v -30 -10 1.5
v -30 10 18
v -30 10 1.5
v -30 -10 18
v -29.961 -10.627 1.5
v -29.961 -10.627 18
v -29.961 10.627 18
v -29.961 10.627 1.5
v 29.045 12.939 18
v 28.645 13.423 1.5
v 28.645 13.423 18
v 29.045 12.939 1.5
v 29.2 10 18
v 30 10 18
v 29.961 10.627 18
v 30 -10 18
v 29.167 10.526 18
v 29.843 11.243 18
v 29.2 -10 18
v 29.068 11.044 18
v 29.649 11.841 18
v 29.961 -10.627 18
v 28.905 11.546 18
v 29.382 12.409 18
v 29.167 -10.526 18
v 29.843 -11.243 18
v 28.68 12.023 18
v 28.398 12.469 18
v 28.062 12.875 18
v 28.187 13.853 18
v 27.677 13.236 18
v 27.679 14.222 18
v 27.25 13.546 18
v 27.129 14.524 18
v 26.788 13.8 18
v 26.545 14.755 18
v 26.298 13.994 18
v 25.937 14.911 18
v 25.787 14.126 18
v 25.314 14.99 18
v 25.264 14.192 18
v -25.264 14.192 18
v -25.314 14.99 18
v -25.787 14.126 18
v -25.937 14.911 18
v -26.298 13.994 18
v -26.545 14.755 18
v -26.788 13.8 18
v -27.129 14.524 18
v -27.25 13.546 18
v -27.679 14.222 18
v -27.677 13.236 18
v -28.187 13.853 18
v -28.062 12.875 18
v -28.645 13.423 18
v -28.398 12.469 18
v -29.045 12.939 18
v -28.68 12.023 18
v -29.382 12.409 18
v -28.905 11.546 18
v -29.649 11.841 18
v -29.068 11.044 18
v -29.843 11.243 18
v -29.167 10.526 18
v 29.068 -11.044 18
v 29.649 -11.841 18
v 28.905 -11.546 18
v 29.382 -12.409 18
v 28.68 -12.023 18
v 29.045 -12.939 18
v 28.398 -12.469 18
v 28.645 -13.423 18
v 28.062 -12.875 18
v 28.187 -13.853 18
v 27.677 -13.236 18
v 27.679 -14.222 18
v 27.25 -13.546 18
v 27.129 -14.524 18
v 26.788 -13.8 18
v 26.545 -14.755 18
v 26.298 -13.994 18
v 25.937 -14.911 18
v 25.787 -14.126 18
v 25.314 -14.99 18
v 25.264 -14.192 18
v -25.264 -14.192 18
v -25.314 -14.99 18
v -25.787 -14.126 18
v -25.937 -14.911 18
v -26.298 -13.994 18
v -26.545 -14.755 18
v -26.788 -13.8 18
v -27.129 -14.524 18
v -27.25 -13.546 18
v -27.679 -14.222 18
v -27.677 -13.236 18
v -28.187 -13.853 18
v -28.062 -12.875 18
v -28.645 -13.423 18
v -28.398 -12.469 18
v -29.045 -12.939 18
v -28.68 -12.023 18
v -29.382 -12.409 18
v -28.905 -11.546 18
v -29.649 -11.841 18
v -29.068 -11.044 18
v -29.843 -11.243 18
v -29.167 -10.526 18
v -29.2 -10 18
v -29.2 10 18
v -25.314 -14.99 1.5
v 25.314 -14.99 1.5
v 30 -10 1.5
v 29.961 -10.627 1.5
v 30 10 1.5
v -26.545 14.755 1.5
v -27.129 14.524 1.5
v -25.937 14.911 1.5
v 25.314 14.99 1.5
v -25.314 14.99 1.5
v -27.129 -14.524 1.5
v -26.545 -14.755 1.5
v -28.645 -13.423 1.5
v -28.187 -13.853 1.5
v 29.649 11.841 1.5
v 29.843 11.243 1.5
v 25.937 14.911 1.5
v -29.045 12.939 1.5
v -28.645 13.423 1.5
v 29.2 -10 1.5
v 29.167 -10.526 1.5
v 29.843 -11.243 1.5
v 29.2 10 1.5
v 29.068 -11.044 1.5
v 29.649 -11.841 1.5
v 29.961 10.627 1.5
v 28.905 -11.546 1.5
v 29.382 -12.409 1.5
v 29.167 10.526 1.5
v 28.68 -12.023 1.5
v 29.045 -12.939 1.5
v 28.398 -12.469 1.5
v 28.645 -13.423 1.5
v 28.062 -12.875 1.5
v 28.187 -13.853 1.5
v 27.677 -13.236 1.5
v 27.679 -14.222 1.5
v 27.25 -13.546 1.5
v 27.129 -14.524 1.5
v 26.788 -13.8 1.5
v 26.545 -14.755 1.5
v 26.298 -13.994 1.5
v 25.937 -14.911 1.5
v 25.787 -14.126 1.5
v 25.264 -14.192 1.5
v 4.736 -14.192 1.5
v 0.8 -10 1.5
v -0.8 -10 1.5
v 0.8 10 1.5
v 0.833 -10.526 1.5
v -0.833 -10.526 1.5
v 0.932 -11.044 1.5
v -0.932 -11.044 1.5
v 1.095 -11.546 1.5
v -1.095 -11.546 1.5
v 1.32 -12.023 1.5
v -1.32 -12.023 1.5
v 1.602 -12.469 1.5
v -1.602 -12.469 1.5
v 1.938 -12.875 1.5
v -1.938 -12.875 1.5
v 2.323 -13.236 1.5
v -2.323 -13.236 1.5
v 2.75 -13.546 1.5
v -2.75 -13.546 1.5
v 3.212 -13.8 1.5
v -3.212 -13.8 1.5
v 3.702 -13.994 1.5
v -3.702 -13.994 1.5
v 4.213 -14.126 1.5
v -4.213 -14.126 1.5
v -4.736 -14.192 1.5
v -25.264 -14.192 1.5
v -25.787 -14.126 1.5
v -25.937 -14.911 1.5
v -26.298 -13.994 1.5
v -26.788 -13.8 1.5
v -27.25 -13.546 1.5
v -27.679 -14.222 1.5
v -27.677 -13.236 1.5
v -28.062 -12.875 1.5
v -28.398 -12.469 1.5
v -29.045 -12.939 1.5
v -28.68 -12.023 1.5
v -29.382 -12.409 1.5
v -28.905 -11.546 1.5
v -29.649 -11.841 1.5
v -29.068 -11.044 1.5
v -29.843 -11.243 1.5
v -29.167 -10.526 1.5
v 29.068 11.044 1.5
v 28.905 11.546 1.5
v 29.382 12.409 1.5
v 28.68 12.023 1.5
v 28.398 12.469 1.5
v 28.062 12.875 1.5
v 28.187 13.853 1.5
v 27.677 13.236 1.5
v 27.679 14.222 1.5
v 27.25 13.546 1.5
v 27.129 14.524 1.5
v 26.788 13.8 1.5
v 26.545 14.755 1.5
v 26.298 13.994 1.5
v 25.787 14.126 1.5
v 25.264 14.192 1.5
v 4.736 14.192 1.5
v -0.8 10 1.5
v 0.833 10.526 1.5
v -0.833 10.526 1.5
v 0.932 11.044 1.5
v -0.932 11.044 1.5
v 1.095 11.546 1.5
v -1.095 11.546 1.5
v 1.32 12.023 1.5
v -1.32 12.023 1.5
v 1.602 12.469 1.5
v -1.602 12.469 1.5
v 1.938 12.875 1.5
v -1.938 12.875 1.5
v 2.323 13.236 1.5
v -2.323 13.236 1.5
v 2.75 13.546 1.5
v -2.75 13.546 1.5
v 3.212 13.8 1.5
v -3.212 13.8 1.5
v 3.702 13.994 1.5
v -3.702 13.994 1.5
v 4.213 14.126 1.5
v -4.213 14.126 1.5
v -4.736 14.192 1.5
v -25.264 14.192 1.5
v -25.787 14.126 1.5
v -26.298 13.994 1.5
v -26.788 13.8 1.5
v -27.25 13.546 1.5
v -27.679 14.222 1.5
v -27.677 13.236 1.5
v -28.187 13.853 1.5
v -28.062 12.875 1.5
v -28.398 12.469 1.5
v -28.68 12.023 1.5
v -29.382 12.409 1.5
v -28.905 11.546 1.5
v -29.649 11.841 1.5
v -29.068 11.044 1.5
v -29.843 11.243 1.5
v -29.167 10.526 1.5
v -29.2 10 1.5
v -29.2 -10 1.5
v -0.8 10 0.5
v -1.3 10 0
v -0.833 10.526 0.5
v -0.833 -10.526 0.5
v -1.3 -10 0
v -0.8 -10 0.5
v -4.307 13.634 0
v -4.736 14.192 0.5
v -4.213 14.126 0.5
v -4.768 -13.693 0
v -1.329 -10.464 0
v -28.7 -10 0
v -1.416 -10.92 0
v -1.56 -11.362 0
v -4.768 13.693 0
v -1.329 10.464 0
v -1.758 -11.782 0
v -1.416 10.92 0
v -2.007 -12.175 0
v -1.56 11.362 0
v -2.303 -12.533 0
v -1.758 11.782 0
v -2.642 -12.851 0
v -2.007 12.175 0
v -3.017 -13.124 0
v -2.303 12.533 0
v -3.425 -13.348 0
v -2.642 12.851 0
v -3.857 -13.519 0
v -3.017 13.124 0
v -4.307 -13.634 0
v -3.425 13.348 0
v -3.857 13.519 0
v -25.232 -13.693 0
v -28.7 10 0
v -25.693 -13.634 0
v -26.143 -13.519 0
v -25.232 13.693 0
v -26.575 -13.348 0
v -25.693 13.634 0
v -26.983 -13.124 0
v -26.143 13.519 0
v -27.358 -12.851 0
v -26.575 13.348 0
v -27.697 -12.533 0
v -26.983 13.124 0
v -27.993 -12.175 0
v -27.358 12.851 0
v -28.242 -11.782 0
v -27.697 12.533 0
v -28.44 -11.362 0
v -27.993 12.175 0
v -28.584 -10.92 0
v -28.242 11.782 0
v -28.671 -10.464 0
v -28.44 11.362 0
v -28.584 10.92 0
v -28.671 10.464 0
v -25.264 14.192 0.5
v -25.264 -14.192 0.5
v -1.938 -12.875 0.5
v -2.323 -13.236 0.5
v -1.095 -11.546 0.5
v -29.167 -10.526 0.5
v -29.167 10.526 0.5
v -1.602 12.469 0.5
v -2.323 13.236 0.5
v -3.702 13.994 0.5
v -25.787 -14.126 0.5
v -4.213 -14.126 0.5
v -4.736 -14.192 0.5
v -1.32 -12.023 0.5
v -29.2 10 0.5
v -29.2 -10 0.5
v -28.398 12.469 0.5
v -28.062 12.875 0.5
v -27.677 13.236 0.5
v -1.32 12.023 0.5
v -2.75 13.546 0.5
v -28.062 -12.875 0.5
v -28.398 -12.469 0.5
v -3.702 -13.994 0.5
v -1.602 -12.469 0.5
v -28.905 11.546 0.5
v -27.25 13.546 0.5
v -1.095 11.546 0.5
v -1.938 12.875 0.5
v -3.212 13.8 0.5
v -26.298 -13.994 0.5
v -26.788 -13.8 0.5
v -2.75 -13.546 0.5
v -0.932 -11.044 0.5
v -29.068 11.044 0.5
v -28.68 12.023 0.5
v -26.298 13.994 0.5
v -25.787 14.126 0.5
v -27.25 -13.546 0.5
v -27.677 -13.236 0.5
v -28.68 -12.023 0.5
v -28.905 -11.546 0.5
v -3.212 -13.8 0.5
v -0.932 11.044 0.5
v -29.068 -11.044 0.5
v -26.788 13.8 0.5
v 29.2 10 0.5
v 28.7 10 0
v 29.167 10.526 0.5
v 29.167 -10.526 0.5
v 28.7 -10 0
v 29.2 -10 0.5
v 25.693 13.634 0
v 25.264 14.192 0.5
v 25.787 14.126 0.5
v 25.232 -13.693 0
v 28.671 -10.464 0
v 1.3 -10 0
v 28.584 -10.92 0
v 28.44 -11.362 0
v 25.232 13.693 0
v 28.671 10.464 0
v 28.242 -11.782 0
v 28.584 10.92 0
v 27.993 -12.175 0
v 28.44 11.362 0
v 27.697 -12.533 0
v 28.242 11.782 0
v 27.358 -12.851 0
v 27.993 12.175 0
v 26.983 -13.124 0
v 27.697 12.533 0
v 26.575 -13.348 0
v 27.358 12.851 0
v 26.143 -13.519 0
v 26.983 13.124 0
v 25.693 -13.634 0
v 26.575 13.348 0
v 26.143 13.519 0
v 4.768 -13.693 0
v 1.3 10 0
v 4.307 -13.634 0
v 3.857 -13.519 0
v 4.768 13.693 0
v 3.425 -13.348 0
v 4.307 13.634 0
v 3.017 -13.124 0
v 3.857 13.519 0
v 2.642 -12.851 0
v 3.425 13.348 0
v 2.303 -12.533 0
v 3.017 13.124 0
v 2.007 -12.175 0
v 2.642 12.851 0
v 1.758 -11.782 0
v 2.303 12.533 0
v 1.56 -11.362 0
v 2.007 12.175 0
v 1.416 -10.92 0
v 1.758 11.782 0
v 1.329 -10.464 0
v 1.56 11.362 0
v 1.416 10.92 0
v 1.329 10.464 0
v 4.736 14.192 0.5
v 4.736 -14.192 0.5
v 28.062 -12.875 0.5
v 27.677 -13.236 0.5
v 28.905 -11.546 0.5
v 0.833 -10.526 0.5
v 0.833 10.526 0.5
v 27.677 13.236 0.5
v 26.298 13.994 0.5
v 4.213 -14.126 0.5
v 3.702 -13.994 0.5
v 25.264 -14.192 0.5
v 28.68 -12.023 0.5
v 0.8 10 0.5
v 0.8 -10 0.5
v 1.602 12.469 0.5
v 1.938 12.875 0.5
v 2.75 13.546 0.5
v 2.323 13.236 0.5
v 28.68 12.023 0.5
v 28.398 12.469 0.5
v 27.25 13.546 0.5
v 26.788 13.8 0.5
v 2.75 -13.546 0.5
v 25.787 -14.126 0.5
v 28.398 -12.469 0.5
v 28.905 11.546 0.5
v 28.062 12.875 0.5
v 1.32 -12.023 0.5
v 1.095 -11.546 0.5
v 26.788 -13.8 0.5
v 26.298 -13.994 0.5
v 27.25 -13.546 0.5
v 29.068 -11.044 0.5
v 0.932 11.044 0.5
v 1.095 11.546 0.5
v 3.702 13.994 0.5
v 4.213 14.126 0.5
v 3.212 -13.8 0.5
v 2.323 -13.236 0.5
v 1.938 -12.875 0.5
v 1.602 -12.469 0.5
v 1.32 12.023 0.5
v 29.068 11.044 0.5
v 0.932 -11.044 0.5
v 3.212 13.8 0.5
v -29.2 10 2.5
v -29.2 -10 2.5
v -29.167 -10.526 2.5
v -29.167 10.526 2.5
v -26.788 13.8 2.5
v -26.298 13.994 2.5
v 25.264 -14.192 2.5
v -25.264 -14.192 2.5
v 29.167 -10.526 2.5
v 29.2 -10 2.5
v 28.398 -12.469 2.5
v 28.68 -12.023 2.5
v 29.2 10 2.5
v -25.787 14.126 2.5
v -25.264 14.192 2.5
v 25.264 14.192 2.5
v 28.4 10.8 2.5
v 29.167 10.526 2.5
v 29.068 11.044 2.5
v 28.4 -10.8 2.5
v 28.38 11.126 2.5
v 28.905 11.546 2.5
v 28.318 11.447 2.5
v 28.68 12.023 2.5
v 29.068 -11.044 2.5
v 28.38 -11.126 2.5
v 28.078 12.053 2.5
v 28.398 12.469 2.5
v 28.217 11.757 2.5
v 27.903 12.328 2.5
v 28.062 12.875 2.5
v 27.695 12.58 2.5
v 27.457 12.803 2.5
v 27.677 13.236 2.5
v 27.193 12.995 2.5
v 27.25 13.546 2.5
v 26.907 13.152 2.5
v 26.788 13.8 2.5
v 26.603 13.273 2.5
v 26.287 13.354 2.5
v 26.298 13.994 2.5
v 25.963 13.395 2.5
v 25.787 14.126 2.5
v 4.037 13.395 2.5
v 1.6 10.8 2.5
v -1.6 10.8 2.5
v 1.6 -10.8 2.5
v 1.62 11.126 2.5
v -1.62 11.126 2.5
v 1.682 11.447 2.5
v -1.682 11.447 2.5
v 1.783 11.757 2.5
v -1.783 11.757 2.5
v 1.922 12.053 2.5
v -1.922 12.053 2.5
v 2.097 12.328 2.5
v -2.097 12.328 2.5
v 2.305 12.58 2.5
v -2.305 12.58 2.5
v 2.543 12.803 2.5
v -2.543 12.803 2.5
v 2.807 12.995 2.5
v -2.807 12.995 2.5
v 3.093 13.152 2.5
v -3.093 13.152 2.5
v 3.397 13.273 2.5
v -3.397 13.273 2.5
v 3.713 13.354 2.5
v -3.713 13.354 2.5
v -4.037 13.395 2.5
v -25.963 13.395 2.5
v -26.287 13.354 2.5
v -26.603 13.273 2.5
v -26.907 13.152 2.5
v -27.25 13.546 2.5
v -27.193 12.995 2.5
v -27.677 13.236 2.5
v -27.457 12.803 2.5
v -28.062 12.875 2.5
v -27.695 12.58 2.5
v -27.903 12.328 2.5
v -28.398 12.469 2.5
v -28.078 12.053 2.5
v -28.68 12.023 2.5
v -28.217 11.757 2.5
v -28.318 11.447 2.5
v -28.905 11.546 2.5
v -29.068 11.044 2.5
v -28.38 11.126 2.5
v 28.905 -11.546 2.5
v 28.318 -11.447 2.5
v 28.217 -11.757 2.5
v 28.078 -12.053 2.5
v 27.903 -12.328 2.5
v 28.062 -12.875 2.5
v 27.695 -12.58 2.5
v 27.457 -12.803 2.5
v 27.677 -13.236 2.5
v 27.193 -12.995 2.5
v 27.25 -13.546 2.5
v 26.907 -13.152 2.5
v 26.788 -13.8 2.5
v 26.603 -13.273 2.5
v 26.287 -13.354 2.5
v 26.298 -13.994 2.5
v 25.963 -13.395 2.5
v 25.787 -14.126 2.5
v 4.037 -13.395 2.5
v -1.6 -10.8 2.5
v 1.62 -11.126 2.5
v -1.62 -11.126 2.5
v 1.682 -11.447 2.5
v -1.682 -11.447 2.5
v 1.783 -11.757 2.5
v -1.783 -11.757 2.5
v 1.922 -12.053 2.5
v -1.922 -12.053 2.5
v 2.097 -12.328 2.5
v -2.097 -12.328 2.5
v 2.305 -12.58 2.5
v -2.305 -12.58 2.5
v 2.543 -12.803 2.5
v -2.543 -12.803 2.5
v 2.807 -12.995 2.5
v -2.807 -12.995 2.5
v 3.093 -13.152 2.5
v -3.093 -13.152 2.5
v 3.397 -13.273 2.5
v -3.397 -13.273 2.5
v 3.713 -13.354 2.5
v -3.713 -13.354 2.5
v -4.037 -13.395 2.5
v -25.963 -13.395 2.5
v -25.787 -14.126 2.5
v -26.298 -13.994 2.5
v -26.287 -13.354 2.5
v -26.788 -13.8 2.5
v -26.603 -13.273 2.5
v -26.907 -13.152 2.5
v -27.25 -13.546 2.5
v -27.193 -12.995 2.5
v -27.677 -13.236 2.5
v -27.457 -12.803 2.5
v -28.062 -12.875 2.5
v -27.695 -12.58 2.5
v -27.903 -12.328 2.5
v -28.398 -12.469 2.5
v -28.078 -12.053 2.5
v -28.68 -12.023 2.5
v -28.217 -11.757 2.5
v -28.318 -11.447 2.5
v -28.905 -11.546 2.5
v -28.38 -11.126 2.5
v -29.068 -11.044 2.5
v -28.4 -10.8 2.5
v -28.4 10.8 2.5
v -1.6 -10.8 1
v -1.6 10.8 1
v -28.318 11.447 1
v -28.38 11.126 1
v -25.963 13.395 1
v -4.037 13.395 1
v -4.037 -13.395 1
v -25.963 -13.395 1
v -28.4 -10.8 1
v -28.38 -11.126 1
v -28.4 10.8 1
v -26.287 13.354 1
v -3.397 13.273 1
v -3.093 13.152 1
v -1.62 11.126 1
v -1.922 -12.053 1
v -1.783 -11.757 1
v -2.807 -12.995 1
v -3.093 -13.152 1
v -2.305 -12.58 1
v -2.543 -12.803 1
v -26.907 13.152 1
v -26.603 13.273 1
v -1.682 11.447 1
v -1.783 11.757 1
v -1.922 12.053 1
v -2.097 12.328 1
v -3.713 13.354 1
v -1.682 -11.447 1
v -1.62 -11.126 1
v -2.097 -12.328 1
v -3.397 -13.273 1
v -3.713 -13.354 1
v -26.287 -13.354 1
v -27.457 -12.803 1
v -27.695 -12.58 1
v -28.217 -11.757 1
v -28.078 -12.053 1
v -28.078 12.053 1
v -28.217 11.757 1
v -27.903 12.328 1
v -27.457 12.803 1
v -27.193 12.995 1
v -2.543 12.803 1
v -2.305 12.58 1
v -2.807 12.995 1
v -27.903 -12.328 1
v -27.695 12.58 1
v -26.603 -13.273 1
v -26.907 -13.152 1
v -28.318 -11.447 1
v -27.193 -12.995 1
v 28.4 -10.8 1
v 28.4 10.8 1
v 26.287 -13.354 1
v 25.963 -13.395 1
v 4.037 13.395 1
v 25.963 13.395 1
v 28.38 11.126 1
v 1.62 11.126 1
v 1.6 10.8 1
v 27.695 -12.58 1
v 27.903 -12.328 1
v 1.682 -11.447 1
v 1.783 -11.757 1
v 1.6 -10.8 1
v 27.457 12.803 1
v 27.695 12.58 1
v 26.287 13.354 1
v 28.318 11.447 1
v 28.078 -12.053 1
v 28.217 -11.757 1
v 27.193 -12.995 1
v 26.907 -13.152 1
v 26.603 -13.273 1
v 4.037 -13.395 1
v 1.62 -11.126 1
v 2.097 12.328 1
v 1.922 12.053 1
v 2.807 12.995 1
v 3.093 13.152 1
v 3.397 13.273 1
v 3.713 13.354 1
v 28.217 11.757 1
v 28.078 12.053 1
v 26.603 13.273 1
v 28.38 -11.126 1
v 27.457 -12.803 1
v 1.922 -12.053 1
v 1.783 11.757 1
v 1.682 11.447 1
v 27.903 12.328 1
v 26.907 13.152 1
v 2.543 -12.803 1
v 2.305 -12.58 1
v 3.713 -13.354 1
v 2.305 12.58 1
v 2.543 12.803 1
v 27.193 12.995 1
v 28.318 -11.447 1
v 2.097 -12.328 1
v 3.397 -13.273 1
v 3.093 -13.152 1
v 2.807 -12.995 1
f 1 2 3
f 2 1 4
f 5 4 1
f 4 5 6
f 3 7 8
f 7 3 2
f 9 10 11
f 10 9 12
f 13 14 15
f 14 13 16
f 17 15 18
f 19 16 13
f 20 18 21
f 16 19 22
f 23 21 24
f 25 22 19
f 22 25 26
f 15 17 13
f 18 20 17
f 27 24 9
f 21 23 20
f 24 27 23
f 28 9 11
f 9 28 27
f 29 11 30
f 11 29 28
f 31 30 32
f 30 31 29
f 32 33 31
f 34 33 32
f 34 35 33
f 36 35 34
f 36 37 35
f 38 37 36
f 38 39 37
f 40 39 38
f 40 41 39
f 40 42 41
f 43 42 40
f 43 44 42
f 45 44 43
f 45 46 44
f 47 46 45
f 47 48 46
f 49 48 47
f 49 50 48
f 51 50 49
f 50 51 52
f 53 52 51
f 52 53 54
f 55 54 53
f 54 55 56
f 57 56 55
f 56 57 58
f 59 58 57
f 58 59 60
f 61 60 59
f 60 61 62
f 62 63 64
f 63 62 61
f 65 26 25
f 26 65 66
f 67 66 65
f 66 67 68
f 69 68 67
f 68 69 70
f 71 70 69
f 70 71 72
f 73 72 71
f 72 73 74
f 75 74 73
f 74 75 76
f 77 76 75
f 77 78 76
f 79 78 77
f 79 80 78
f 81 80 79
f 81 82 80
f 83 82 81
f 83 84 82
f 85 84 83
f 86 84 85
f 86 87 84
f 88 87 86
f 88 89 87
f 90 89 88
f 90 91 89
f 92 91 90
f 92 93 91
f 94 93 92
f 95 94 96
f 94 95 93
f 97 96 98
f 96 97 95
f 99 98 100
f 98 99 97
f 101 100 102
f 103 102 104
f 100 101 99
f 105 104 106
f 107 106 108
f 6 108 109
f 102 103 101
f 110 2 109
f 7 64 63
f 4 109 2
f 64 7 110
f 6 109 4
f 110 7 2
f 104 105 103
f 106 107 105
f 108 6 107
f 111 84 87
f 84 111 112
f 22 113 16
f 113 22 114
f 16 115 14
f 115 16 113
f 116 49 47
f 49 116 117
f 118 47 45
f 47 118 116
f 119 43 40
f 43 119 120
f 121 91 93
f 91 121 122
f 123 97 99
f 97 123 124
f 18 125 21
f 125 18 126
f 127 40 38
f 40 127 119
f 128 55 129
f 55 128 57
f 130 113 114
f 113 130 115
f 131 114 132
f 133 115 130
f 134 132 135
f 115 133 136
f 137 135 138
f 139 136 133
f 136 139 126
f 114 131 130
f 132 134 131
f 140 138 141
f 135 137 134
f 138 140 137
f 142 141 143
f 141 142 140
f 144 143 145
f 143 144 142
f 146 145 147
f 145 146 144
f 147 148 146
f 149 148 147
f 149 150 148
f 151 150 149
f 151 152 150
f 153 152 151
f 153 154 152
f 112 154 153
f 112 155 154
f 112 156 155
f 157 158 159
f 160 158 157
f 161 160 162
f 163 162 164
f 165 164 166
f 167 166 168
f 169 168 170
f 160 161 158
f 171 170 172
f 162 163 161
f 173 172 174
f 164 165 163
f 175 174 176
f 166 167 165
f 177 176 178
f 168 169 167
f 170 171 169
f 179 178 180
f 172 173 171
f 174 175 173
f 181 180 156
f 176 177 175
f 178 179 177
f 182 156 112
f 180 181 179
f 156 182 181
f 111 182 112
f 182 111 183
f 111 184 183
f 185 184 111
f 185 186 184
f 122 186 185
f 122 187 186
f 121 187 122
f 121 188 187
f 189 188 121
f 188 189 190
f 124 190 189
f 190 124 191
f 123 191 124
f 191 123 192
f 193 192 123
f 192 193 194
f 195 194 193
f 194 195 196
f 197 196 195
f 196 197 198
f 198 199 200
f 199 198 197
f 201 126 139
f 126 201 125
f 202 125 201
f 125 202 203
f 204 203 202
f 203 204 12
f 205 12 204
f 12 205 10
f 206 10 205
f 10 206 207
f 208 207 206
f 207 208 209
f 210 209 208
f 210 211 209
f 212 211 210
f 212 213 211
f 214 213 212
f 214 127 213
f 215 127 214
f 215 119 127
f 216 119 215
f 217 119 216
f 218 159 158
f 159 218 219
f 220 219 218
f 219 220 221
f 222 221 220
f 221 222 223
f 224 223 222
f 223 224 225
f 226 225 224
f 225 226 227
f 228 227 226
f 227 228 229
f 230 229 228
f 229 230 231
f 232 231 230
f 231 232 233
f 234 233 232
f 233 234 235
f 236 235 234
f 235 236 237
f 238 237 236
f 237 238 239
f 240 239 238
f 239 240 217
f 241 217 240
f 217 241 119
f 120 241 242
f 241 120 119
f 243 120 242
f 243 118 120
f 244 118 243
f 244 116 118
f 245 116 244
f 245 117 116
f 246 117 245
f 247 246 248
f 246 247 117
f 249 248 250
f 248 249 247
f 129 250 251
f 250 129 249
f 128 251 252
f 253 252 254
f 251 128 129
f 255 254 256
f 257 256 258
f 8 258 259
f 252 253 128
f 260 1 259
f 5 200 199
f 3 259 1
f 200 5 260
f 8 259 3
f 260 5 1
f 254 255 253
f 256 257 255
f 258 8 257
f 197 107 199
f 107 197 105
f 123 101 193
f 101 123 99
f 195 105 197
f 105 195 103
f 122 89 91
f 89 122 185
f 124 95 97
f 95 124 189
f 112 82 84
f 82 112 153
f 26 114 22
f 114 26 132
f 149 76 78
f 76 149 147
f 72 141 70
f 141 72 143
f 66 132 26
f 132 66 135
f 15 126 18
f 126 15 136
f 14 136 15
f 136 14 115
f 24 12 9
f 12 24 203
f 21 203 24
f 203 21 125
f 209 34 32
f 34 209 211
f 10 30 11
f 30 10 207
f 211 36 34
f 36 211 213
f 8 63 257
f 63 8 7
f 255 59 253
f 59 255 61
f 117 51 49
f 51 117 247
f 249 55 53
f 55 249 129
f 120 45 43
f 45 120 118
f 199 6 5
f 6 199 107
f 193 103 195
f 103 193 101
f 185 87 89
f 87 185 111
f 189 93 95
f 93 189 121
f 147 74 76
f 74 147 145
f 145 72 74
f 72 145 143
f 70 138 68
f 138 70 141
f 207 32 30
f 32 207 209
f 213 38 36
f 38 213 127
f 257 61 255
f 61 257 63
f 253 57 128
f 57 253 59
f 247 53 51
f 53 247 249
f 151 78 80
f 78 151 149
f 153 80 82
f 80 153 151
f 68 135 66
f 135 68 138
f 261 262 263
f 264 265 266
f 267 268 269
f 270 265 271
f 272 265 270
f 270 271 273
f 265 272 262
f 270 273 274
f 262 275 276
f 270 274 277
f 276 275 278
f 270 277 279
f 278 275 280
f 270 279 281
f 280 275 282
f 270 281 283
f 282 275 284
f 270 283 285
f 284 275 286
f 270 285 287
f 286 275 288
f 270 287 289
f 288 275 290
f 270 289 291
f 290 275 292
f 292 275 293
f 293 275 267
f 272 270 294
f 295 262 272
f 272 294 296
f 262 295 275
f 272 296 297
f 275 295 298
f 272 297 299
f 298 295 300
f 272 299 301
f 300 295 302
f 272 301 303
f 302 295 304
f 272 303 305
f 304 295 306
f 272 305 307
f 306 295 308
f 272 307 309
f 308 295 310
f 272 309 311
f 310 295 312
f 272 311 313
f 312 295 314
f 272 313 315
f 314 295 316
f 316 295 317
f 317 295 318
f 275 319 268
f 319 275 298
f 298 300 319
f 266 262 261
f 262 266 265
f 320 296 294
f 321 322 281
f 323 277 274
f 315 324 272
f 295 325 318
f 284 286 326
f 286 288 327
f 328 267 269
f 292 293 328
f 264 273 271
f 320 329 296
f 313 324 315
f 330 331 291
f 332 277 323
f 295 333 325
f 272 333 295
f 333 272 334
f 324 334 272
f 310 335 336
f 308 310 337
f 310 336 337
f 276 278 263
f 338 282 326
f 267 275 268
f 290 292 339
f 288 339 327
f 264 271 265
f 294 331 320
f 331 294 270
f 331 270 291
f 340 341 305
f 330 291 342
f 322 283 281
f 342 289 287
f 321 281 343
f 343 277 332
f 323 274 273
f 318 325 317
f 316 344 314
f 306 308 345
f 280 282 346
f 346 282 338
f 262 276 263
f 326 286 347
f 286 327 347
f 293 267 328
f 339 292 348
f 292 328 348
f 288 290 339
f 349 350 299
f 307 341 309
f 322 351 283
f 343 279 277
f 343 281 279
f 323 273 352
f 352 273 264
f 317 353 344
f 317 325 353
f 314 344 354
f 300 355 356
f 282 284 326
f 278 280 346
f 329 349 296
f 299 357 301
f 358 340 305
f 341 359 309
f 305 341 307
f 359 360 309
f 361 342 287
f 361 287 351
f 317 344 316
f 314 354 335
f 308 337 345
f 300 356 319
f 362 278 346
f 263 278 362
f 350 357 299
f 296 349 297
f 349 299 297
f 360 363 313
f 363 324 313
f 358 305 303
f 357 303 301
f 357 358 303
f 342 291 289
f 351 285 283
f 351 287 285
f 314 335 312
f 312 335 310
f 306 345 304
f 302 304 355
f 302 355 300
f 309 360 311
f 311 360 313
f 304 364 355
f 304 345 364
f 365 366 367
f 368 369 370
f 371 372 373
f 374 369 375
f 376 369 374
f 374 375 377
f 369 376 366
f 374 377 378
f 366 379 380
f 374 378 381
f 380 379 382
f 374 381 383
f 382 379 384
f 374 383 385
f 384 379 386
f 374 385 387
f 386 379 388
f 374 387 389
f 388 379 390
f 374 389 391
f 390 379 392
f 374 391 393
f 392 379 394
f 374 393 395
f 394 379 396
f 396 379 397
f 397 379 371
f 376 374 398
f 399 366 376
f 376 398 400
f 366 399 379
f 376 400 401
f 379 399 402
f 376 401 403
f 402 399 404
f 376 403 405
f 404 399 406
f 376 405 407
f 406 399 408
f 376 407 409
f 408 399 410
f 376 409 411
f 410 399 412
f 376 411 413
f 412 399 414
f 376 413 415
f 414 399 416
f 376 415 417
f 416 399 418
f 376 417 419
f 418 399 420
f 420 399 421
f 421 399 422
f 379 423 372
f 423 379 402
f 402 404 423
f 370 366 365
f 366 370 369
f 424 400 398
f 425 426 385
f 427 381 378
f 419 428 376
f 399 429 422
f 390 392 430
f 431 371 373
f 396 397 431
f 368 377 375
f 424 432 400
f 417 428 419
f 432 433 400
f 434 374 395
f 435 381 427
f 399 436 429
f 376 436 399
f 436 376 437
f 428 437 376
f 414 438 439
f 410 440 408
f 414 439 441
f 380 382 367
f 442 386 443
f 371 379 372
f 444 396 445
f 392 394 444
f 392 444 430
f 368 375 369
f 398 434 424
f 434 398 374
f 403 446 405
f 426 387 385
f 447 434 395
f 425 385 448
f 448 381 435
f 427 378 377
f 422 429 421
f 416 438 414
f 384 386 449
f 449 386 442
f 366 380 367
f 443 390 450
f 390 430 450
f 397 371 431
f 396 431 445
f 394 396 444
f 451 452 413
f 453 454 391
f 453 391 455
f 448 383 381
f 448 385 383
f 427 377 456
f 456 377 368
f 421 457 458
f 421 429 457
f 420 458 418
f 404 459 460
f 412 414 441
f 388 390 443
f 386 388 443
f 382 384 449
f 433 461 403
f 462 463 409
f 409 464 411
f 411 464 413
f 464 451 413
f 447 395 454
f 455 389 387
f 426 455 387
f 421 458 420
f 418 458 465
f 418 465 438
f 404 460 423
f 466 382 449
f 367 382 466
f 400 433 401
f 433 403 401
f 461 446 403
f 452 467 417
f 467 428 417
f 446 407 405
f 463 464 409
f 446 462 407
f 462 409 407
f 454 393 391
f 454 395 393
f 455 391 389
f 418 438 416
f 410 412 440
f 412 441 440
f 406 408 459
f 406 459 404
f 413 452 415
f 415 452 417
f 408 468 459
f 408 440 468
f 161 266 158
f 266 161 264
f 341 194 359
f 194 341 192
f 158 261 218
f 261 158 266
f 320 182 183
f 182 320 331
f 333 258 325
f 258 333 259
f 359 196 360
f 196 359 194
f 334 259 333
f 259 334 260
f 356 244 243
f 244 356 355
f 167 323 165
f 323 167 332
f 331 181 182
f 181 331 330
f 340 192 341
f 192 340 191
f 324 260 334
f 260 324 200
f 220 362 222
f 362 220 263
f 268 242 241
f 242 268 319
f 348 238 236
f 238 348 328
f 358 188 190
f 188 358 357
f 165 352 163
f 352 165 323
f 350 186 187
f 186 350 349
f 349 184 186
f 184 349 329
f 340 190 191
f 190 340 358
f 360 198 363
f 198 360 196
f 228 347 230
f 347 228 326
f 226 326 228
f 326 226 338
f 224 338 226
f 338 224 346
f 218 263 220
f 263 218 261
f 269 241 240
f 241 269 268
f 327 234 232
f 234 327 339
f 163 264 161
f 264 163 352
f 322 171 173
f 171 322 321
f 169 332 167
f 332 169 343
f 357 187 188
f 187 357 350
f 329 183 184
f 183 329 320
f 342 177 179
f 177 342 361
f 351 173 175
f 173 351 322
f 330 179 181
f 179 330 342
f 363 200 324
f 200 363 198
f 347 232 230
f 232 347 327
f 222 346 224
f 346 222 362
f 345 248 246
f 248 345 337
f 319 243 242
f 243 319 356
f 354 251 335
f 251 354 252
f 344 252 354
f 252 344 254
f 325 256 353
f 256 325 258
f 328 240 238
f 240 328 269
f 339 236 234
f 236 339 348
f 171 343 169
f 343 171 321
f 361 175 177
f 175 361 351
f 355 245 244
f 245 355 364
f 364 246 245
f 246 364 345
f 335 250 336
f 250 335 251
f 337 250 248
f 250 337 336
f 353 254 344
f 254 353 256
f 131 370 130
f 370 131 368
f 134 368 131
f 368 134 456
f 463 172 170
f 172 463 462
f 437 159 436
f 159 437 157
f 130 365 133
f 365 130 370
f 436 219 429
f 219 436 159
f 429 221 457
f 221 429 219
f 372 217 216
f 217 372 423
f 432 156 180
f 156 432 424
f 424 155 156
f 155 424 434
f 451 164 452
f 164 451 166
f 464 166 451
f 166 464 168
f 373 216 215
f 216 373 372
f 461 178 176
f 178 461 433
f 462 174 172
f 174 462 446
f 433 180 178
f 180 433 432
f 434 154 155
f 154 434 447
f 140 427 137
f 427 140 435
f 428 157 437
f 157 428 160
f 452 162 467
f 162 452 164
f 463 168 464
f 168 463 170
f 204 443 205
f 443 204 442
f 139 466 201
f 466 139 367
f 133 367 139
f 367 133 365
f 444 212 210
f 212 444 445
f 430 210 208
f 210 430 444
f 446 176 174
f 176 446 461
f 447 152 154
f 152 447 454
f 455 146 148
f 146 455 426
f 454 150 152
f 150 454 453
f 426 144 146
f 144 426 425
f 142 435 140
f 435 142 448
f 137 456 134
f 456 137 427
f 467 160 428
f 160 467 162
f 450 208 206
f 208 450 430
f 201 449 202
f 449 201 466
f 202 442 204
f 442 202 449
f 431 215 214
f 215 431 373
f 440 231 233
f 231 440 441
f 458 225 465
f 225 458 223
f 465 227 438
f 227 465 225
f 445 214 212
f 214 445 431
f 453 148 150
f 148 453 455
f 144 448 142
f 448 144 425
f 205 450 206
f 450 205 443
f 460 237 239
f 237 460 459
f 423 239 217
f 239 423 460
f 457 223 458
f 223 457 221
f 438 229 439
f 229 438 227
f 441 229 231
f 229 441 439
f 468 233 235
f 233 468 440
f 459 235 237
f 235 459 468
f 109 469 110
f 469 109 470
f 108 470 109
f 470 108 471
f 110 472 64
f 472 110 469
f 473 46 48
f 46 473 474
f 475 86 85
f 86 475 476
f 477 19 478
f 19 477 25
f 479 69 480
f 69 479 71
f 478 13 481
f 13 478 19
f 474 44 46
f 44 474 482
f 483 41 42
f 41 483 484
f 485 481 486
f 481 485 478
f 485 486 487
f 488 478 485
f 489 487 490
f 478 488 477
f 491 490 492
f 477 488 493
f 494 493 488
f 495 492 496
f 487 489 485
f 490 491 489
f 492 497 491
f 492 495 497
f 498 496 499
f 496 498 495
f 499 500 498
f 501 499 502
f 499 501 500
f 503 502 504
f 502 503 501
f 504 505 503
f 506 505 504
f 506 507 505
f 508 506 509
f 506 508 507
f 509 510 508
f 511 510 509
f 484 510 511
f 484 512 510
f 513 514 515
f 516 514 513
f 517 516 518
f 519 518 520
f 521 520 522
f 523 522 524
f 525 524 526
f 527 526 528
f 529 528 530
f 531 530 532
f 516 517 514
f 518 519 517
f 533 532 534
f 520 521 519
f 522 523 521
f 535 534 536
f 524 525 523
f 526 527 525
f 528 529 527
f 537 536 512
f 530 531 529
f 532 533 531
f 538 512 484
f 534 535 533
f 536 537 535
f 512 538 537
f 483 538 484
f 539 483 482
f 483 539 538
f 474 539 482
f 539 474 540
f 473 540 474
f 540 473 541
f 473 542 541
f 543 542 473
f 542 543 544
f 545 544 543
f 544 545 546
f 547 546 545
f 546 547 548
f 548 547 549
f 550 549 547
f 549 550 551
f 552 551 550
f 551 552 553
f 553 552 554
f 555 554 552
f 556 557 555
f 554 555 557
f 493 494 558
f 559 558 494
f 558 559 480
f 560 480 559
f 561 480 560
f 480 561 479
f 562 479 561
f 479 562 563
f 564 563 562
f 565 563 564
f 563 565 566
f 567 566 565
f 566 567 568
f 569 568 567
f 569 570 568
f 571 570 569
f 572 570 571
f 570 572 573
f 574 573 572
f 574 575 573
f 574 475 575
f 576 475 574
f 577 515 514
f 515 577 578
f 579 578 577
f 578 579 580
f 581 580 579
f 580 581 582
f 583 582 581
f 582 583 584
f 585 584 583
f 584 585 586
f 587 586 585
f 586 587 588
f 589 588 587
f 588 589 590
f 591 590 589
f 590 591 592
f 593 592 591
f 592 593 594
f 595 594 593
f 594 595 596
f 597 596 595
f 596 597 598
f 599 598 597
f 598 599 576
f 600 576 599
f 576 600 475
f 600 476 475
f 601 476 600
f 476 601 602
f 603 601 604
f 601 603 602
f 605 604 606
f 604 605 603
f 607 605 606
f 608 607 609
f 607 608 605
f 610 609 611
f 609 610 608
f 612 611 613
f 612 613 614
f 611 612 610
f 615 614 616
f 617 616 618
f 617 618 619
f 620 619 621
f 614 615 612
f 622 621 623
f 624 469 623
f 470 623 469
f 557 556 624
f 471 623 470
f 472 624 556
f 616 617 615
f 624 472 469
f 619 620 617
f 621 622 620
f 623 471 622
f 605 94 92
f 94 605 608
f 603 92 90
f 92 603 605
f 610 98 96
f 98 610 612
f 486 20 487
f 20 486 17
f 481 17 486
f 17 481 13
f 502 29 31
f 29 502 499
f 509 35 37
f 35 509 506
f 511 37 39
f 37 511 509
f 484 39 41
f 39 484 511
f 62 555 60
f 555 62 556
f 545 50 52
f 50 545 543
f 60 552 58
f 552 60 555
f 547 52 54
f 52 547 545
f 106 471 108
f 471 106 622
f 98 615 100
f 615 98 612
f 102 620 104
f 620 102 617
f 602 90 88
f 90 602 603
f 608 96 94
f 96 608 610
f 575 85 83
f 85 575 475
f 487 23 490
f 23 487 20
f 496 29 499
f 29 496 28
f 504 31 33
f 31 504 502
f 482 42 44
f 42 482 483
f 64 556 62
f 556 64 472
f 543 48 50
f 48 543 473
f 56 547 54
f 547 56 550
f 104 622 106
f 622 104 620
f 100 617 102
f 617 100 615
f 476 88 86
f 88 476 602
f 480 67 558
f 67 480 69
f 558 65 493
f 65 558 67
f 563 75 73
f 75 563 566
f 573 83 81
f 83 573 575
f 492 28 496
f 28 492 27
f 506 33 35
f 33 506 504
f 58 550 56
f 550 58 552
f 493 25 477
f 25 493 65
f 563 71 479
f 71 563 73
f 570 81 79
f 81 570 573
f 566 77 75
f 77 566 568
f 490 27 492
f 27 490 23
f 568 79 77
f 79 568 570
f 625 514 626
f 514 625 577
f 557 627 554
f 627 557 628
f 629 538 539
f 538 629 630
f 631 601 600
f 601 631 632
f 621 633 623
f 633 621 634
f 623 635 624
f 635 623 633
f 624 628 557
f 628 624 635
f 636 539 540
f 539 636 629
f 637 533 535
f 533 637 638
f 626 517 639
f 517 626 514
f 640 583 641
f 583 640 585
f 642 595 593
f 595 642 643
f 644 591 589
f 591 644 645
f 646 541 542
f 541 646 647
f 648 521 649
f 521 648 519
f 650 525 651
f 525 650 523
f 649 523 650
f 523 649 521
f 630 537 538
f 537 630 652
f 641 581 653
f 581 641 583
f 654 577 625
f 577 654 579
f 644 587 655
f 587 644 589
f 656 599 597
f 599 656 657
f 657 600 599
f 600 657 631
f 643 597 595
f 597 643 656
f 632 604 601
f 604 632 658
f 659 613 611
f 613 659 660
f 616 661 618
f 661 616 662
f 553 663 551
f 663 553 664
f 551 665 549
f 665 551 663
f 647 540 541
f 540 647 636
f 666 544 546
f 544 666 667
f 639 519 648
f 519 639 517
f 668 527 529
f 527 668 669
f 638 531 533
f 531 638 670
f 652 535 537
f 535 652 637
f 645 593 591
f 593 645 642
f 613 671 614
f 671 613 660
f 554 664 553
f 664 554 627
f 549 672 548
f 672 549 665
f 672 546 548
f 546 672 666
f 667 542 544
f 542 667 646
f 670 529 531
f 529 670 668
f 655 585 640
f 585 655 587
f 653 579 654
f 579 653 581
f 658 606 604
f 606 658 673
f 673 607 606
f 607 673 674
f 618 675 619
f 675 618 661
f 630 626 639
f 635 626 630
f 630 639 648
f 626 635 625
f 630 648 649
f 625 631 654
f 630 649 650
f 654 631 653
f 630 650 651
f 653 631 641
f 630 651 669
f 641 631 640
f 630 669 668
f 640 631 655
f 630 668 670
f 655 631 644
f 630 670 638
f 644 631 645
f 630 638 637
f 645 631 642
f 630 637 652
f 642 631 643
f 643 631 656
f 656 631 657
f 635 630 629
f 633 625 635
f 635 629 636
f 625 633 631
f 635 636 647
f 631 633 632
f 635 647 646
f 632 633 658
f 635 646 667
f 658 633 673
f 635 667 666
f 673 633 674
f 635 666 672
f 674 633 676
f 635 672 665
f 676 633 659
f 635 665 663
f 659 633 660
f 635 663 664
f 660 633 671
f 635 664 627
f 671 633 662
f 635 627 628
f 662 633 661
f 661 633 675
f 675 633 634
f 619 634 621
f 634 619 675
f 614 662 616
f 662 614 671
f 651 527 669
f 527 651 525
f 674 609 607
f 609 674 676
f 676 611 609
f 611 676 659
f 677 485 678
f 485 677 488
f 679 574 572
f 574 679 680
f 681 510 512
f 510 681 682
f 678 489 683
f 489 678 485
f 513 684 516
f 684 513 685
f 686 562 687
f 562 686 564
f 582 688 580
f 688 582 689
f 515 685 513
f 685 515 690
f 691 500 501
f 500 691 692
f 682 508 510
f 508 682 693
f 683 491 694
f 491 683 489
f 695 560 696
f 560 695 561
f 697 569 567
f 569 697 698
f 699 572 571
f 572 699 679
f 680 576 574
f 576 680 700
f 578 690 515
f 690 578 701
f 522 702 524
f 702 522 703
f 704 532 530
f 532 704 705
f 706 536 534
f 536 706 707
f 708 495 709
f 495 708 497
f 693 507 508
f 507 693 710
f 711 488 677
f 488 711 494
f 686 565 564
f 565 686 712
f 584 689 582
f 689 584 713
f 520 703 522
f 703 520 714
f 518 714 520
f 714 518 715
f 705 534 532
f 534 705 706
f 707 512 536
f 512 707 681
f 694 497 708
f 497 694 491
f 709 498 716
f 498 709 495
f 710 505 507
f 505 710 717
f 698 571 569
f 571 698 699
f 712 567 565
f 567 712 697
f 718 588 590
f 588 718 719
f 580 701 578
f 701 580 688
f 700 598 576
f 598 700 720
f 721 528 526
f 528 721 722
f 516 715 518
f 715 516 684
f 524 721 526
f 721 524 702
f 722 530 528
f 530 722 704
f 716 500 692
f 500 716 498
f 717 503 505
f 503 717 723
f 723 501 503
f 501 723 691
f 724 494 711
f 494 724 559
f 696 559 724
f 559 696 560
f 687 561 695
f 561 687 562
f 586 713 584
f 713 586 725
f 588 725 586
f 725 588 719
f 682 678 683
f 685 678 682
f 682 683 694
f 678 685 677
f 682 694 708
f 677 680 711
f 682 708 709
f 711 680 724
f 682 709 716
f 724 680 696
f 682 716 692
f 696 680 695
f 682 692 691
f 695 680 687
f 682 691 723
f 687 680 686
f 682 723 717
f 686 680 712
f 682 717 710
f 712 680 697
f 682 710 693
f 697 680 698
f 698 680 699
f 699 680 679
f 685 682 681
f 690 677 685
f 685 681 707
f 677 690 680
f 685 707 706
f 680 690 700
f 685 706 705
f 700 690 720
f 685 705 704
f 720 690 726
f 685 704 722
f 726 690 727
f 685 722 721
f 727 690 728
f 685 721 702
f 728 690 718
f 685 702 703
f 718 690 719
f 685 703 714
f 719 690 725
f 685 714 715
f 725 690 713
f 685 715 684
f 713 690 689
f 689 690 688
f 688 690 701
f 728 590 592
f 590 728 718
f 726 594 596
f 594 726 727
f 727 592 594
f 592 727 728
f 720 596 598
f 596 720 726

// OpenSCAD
$fn = 50;


difference() {
	union() {
		translate(v = [0, 0, 1.5000000000]) {
			hull() {
				translate(v = [-25.0000000000, 10.0000000000, 0]) {
					cylinder(h = 16.5000000000, r = 5);
				}
				translate(v = [25.0000000000, 10.0000000000, 0]) {
					cylinder(h = 16.5000000000, r = 5);
				}
				translate(v = [-25.0000000000, -10.0000000000, 0]) {
					cylinder(h = 16.5000000000, r = 5);
				}
				translate(v = [25.0000000000, -10.0000000000, 0]) {
					cylinder(h = 16.5000000000, r = 5);
				}
			}
		}
		translate(v = [-15.0000000000, 0, 0.5000000000]) {
			rotate(a = [0, 180, 0]) {
				hull() {
					translate(v = [-10.0000000000, 10.0000000000, 0]) {
						cylinder(h = 0.5000000000, r1 = 4.2000000000, r2 = 3.7000000000);
					}
					translate(v = [10.0000000000, 10.0000000000, 0]) {
						cylinder(h = 0.5000000000, r1 = 4.2000000000, r2 = 3.7000000000);
					}
					translate(v = [-10.0000000000, -10.0000000000, 0]) {
						cylinder(h = 0.5000000000, r1 = 4.2000000000, r2 = 3.7000000000);
					}
					translate(v = [10.0000000000, -10.0000000000, 0]) {
						cylinder(h = 0.5000000000, r1 = 4.2000000000, r2 = 3.7000000000);
					}
				}
			}
		}
		translate(v = [15.0000000000, 0, 0.5000000000]) {
			rotate(a = [0, 180, 0]) {
				hull() {
					translate(v = [-10.0000000000, 10.0000000000, 0]) {
						cylinder(h = 0.5000000000, r1 = 4.2000000000, r2 = 3.7000000000);
					}
					translate(v = [10.0000000000, 10.0000000000, 0]) {
						cylinder(h = 0.5000000000, r1 = 4.2000000000, r2 = 3.7000000000);
					}
					translate(v = [-10.0000000000, -10.0000000000, 0]) {
						cylinder(h = 0.5000000000, r1 = 4.2000000000, r2 = 3.7000000000);
					}
					translate(v = [10.0000000000, -10.0000000000, 0]) {
						cylinder(h = 0.5000000000, r1 = 4.2000000000, r2 = 3.7000000000);
					}
				}
			}
		}
		translate(v = [-15.0000000000, 0, 1.5000000000]) {
			rotate(a = [0, 180, 0]) {
				hull() {
					translate(v = [-10.0000000000, 10.0000000000, 0]) {
						cylinder(h = 1, r1 = 4.2000000000, r2 = 4.2000000000);
					}
					translate(v = [10.0000000000, 10.0000000000, 0]) {
						cylinder(h = 1, r1 = 4.2000000000, r2 = 4.2000000000);
					}
					translate(v = [-10.0000000000, -10.0000000000, 0]) {
						cylinder(h = 1, r1 = 4.2000000000, r2 = 4.2000000000);
					}
					translate(v = [10.0000000000, -10.0000000000, 0]) {
						cylinder(h = 1, r1 = 4.2000000000, r2 = 4.2000000000);
					}
				}
			}
		}
		translate(v = [15.0000000000, 0, 1.5000000000]) {
			rotate(a = [0, 180, 0]) {
				hull() {
					translate(v = [-10.0000000000, 10.0000000000, 0]) {
						cylinder(h = 1, r1 = 4.2000000000, r2 = 4.2000000000);
					}
					translate(v = [10.0000000000, 10.0000000000, 0]) {
						cylinder(h = 1, r1 = 4.2000000000, r2 = 4.2000000000);
					}
					translate(v = [-10.0000000000, -10.0000000000, 0]) {
						cylinder(h = 1, r1 = 4.2000000000, r2 = 4.2000000000);
					}
					translate(v = [10.0000000000, -10.0000000000, 0]) {
						cylinder(h = 1, r1 = 4.2000000000, r2 = 4.2000000000);
					}
				}
			}
		}
	}
	union() {
		translate(v = [0, 0, 2.5000000000]) {
			hull() {
				translate(v = [-25.0000000000, 10.0000000000, 0]) {
					cylinder(h = 15.5000000000, r = 4.2000000000);
				}
				translate(v = [25.0000000000, 10.0000000000, 0]) {
					cylinder(h = 15.5000000000, r = 4.2000000000);
				}
				translate(v = [-25.0000000000, -10.0000000000, 0]) {
					cylinder(h = 15.5000000000, r = 4.2000000000);
				}
				translate(v = [25.0000000000, -10.0000000000, 0]) {
					cylinder(h = 15.5000000000, r = 4.2000000000);
				}
			}
		}
		translate(v = [-15.0000000000, 0, 2.5000000000]) {
			rotate(a = [0, 180, 0]) {
				#hull() {
					translate(v = [-10.8000000000, 10.8000000000, 0]) {
						cylinder(h = 1.5000000000, r1 = 2.6000000000, r2 = 2.6000000000);
					}
					translate(v = [10.8000000000, 10.8000000000, 0]) {
						cylinder(h = 1.5000000000, r1 = 2.6000000000, r2 = 2.6000000000);
					}
					translate(v = [-10.8000000000, -10.8000000000, 0]) {
						cylinder(h = 1.5000000000, r1 = 2.6000000000, r2 = 2.6000000000);
					}
					translate(v = [10.8000000000, -10.8000000000, 0]) {
						cylinder(h = 1.5000000000, r1 = 2.6000000000, r2 = 2.6000000000);
					}
				}
			}
		}
		translate(v = [15.0000000000, 0, 2.5000000000]) {
			rotate(a = [0, 180, 0]) {
				#hull() {
					translate(v = [-10.8000000000, 10.8000000000, 0]) {
						cylinder(h = 1.5000000000, r1 = 2.6000000000, r2 = 2.6000000000);
					}
					translate(v = [10.8000000000, 10.8000000000, 0]) {
						cylinder(h = 1.5000000000, r1 = 2.6000000000, r2 = 2.6000000000);
					}
					translate(v = [-10.8000000000, -10.8000000000, 0]) {
						cylinder(h = 1.5000000000, r1 = 2.6000000000, r2 = 2.6000000000);
					}
					translate(v = [10.8000000000, -10.8000000000, 0]) {
						cylinder(h = 1.5000000000, r1 = 2.6000000000, r2 = 2.6000000000);
					}
				}
			}
		}
	}
}
